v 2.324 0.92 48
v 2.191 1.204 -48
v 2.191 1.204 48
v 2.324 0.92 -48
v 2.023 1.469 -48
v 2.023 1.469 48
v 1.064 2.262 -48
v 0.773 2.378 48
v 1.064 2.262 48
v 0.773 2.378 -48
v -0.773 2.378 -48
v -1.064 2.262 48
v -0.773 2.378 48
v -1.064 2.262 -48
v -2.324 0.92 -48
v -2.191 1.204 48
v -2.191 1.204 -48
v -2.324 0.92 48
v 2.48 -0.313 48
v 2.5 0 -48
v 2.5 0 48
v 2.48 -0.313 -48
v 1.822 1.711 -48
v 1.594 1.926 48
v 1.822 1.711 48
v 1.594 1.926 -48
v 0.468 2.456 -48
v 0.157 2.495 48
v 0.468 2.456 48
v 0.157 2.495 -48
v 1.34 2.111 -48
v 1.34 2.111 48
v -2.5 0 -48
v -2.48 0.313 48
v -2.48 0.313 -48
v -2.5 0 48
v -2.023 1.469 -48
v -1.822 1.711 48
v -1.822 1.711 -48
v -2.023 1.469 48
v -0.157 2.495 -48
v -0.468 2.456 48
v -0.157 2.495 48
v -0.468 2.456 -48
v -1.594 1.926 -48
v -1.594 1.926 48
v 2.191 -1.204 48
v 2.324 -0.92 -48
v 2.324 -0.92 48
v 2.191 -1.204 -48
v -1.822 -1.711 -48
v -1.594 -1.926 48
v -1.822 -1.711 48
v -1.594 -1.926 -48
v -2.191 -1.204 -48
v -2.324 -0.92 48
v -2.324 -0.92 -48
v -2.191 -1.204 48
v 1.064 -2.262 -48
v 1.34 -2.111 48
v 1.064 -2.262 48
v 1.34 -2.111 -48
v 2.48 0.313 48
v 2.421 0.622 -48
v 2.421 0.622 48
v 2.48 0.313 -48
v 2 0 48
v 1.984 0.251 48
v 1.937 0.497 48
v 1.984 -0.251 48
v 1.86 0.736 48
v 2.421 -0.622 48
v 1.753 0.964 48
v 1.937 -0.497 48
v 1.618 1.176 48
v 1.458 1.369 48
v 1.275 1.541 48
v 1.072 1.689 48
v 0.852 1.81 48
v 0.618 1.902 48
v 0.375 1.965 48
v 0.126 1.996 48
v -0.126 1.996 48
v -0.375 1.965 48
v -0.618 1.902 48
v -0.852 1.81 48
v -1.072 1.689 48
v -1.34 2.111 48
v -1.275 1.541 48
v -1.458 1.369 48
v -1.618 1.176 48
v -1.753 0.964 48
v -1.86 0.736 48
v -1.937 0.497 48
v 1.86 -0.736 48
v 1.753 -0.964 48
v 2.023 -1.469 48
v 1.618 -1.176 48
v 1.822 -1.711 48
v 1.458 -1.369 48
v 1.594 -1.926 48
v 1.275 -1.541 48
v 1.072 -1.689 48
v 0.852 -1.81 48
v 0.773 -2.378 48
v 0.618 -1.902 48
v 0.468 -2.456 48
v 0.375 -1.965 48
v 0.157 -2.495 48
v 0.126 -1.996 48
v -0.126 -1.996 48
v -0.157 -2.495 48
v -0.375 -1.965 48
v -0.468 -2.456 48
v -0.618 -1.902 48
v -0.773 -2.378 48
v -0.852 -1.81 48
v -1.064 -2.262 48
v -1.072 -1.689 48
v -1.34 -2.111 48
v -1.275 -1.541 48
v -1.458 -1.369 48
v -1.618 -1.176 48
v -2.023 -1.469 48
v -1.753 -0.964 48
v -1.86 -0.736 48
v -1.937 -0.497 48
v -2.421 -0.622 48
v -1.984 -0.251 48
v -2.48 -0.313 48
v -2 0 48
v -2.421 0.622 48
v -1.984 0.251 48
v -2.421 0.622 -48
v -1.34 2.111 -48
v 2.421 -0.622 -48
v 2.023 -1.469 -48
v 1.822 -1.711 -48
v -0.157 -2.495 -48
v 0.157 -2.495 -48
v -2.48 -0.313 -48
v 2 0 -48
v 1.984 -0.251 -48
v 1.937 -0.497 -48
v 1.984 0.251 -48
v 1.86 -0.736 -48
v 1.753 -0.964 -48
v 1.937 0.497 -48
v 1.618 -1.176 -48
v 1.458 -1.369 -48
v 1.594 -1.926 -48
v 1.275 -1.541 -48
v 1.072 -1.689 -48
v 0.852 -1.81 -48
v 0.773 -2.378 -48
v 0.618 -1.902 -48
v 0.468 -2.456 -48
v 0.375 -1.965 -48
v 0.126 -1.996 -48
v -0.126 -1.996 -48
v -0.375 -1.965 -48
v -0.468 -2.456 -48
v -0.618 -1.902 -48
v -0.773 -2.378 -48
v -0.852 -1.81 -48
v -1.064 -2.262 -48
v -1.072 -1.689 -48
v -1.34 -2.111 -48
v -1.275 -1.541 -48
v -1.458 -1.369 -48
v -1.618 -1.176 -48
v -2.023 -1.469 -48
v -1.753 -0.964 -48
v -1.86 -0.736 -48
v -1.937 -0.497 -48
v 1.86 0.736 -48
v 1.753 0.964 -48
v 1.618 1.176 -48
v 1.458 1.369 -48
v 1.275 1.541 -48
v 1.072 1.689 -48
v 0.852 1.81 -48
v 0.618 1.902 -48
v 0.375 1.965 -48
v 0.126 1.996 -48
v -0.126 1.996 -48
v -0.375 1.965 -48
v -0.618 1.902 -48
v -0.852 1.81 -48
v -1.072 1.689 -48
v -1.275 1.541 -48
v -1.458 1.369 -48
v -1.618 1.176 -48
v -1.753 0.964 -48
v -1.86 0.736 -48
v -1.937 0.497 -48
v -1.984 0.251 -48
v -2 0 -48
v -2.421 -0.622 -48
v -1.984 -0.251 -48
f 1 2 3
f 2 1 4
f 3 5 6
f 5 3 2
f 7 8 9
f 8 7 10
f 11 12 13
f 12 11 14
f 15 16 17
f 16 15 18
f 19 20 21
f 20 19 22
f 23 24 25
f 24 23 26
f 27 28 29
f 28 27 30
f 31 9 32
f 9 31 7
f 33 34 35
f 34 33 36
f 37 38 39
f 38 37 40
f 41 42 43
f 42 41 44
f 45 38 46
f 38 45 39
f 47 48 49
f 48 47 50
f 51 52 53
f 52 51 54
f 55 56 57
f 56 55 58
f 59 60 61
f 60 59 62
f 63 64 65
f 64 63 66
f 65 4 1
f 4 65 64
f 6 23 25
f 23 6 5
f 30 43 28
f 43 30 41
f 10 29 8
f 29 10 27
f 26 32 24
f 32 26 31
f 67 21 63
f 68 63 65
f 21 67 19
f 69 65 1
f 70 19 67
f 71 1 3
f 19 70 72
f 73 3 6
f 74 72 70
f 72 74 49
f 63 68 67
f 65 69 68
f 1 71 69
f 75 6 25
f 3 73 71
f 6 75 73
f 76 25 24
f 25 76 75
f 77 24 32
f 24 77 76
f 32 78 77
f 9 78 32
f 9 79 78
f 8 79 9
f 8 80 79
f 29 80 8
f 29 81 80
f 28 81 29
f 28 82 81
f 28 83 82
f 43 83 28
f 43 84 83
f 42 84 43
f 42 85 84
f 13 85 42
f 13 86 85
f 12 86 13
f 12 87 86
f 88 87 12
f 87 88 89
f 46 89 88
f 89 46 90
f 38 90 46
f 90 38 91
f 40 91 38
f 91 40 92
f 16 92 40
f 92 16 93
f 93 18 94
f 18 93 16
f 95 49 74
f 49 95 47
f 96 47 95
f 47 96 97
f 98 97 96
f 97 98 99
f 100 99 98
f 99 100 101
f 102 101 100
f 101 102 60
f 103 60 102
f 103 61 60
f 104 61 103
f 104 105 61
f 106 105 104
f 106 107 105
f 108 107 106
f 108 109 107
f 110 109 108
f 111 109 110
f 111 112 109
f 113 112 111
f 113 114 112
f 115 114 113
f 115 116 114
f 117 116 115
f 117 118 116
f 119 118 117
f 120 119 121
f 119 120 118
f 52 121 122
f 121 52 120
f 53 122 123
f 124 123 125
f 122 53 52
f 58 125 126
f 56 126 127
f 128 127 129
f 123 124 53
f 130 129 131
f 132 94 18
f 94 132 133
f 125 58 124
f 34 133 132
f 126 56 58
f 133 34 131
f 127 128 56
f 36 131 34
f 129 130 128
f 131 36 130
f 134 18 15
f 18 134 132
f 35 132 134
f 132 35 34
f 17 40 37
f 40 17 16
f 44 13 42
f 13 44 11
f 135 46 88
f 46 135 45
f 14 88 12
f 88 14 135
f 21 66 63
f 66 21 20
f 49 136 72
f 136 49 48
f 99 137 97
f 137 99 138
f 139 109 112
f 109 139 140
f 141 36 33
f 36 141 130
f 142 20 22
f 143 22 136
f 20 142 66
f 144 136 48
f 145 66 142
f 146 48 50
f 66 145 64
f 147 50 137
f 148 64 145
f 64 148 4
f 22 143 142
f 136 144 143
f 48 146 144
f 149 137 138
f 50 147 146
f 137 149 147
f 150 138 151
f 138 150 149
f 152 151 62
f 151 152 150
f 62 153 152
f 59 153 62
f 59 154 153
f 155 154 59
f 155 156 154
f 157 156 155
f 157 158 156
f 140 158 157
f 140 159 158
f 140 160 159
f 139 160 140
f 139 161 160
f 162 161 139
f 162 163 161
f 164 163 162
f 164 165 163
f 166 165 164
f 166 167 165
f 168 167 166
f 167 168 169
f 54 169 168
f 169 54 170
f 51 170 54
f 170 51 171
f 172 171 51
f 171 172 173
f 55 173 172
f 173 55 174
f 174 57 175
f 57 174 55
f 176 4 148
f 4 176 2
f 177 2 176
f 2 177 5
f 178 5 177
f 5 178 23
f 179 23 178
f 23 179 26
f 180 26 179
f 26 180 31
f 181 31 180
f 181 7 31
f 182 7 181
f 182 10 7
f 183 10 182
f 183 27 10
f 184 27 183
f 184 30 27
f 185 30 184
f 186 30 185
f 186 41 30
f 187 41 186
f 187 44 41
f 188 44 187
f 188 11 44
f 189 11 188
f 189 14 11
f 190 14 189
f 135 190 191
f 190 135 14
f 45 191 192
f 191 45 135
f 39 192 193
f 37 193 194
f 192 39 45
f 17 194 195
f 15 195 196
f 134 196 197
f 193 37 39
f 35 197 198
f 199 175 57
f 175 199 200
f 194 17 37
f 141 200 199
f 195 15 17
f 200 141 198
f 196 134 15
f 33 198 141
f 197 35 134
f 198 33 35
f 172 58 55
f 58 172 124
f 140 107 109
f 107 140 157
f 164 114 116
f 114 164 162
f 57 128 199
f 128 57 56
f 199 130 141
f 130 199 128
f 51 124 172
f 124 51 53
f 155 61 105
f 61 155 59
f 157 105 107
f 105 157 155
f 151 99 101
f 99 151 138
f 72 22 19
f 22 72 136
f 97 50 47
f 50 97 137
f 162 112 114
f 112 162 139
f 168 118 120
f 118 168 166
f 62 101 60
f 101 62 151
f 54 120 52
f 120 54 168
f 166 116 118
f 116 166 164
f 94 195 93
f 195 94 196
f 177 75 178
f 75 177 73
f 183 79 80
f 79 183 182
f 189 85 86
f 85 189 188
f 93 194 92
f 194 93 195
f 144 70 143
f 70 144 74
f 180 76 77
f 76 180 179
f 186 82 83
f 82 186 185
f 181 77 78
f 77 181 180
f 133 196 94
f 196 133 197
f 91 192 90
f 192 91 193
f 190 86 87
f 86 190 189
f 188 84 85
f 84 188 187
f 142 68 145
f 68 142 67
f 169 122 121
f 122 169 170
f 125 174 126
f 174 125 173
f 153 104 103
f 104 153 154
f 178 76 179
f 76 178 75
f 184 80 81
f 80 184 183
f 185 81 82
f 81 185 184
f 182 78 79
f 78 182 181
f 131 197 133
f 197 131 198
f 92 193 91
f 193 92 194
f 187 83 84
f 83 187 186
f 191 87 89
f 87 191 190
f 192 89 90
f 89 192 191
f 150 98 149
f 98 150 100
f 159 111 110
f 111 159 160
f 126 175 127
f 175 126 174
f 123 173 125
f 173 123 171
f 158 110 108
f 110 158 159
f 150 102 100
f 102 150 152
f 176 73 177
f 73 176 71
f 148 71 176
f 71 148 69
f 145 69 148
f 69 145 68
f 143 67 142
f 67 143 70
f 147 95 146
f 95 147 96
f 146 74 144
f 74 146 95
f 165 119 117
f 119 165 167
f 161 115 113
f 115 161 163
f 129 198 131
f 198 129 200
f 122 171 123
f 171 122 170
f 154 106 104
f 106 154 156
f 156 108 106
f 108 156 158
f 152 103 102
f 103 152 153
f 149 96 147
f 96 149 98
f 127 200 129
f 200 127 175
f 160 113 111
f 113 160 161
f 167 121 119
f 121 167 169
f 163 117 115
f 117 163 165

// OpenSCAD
$fn = 50;


difference() {
	union() {
		translate(v = [0, 0, -48.0000000000]) {
			cylinder(h = 96, r = 2.5000000000);
		}
	}
	union() {
		translate(v = [0, 0, -100.0000000000]) {
			cylinder(h = 200, r = 2);
		}
	}
}
